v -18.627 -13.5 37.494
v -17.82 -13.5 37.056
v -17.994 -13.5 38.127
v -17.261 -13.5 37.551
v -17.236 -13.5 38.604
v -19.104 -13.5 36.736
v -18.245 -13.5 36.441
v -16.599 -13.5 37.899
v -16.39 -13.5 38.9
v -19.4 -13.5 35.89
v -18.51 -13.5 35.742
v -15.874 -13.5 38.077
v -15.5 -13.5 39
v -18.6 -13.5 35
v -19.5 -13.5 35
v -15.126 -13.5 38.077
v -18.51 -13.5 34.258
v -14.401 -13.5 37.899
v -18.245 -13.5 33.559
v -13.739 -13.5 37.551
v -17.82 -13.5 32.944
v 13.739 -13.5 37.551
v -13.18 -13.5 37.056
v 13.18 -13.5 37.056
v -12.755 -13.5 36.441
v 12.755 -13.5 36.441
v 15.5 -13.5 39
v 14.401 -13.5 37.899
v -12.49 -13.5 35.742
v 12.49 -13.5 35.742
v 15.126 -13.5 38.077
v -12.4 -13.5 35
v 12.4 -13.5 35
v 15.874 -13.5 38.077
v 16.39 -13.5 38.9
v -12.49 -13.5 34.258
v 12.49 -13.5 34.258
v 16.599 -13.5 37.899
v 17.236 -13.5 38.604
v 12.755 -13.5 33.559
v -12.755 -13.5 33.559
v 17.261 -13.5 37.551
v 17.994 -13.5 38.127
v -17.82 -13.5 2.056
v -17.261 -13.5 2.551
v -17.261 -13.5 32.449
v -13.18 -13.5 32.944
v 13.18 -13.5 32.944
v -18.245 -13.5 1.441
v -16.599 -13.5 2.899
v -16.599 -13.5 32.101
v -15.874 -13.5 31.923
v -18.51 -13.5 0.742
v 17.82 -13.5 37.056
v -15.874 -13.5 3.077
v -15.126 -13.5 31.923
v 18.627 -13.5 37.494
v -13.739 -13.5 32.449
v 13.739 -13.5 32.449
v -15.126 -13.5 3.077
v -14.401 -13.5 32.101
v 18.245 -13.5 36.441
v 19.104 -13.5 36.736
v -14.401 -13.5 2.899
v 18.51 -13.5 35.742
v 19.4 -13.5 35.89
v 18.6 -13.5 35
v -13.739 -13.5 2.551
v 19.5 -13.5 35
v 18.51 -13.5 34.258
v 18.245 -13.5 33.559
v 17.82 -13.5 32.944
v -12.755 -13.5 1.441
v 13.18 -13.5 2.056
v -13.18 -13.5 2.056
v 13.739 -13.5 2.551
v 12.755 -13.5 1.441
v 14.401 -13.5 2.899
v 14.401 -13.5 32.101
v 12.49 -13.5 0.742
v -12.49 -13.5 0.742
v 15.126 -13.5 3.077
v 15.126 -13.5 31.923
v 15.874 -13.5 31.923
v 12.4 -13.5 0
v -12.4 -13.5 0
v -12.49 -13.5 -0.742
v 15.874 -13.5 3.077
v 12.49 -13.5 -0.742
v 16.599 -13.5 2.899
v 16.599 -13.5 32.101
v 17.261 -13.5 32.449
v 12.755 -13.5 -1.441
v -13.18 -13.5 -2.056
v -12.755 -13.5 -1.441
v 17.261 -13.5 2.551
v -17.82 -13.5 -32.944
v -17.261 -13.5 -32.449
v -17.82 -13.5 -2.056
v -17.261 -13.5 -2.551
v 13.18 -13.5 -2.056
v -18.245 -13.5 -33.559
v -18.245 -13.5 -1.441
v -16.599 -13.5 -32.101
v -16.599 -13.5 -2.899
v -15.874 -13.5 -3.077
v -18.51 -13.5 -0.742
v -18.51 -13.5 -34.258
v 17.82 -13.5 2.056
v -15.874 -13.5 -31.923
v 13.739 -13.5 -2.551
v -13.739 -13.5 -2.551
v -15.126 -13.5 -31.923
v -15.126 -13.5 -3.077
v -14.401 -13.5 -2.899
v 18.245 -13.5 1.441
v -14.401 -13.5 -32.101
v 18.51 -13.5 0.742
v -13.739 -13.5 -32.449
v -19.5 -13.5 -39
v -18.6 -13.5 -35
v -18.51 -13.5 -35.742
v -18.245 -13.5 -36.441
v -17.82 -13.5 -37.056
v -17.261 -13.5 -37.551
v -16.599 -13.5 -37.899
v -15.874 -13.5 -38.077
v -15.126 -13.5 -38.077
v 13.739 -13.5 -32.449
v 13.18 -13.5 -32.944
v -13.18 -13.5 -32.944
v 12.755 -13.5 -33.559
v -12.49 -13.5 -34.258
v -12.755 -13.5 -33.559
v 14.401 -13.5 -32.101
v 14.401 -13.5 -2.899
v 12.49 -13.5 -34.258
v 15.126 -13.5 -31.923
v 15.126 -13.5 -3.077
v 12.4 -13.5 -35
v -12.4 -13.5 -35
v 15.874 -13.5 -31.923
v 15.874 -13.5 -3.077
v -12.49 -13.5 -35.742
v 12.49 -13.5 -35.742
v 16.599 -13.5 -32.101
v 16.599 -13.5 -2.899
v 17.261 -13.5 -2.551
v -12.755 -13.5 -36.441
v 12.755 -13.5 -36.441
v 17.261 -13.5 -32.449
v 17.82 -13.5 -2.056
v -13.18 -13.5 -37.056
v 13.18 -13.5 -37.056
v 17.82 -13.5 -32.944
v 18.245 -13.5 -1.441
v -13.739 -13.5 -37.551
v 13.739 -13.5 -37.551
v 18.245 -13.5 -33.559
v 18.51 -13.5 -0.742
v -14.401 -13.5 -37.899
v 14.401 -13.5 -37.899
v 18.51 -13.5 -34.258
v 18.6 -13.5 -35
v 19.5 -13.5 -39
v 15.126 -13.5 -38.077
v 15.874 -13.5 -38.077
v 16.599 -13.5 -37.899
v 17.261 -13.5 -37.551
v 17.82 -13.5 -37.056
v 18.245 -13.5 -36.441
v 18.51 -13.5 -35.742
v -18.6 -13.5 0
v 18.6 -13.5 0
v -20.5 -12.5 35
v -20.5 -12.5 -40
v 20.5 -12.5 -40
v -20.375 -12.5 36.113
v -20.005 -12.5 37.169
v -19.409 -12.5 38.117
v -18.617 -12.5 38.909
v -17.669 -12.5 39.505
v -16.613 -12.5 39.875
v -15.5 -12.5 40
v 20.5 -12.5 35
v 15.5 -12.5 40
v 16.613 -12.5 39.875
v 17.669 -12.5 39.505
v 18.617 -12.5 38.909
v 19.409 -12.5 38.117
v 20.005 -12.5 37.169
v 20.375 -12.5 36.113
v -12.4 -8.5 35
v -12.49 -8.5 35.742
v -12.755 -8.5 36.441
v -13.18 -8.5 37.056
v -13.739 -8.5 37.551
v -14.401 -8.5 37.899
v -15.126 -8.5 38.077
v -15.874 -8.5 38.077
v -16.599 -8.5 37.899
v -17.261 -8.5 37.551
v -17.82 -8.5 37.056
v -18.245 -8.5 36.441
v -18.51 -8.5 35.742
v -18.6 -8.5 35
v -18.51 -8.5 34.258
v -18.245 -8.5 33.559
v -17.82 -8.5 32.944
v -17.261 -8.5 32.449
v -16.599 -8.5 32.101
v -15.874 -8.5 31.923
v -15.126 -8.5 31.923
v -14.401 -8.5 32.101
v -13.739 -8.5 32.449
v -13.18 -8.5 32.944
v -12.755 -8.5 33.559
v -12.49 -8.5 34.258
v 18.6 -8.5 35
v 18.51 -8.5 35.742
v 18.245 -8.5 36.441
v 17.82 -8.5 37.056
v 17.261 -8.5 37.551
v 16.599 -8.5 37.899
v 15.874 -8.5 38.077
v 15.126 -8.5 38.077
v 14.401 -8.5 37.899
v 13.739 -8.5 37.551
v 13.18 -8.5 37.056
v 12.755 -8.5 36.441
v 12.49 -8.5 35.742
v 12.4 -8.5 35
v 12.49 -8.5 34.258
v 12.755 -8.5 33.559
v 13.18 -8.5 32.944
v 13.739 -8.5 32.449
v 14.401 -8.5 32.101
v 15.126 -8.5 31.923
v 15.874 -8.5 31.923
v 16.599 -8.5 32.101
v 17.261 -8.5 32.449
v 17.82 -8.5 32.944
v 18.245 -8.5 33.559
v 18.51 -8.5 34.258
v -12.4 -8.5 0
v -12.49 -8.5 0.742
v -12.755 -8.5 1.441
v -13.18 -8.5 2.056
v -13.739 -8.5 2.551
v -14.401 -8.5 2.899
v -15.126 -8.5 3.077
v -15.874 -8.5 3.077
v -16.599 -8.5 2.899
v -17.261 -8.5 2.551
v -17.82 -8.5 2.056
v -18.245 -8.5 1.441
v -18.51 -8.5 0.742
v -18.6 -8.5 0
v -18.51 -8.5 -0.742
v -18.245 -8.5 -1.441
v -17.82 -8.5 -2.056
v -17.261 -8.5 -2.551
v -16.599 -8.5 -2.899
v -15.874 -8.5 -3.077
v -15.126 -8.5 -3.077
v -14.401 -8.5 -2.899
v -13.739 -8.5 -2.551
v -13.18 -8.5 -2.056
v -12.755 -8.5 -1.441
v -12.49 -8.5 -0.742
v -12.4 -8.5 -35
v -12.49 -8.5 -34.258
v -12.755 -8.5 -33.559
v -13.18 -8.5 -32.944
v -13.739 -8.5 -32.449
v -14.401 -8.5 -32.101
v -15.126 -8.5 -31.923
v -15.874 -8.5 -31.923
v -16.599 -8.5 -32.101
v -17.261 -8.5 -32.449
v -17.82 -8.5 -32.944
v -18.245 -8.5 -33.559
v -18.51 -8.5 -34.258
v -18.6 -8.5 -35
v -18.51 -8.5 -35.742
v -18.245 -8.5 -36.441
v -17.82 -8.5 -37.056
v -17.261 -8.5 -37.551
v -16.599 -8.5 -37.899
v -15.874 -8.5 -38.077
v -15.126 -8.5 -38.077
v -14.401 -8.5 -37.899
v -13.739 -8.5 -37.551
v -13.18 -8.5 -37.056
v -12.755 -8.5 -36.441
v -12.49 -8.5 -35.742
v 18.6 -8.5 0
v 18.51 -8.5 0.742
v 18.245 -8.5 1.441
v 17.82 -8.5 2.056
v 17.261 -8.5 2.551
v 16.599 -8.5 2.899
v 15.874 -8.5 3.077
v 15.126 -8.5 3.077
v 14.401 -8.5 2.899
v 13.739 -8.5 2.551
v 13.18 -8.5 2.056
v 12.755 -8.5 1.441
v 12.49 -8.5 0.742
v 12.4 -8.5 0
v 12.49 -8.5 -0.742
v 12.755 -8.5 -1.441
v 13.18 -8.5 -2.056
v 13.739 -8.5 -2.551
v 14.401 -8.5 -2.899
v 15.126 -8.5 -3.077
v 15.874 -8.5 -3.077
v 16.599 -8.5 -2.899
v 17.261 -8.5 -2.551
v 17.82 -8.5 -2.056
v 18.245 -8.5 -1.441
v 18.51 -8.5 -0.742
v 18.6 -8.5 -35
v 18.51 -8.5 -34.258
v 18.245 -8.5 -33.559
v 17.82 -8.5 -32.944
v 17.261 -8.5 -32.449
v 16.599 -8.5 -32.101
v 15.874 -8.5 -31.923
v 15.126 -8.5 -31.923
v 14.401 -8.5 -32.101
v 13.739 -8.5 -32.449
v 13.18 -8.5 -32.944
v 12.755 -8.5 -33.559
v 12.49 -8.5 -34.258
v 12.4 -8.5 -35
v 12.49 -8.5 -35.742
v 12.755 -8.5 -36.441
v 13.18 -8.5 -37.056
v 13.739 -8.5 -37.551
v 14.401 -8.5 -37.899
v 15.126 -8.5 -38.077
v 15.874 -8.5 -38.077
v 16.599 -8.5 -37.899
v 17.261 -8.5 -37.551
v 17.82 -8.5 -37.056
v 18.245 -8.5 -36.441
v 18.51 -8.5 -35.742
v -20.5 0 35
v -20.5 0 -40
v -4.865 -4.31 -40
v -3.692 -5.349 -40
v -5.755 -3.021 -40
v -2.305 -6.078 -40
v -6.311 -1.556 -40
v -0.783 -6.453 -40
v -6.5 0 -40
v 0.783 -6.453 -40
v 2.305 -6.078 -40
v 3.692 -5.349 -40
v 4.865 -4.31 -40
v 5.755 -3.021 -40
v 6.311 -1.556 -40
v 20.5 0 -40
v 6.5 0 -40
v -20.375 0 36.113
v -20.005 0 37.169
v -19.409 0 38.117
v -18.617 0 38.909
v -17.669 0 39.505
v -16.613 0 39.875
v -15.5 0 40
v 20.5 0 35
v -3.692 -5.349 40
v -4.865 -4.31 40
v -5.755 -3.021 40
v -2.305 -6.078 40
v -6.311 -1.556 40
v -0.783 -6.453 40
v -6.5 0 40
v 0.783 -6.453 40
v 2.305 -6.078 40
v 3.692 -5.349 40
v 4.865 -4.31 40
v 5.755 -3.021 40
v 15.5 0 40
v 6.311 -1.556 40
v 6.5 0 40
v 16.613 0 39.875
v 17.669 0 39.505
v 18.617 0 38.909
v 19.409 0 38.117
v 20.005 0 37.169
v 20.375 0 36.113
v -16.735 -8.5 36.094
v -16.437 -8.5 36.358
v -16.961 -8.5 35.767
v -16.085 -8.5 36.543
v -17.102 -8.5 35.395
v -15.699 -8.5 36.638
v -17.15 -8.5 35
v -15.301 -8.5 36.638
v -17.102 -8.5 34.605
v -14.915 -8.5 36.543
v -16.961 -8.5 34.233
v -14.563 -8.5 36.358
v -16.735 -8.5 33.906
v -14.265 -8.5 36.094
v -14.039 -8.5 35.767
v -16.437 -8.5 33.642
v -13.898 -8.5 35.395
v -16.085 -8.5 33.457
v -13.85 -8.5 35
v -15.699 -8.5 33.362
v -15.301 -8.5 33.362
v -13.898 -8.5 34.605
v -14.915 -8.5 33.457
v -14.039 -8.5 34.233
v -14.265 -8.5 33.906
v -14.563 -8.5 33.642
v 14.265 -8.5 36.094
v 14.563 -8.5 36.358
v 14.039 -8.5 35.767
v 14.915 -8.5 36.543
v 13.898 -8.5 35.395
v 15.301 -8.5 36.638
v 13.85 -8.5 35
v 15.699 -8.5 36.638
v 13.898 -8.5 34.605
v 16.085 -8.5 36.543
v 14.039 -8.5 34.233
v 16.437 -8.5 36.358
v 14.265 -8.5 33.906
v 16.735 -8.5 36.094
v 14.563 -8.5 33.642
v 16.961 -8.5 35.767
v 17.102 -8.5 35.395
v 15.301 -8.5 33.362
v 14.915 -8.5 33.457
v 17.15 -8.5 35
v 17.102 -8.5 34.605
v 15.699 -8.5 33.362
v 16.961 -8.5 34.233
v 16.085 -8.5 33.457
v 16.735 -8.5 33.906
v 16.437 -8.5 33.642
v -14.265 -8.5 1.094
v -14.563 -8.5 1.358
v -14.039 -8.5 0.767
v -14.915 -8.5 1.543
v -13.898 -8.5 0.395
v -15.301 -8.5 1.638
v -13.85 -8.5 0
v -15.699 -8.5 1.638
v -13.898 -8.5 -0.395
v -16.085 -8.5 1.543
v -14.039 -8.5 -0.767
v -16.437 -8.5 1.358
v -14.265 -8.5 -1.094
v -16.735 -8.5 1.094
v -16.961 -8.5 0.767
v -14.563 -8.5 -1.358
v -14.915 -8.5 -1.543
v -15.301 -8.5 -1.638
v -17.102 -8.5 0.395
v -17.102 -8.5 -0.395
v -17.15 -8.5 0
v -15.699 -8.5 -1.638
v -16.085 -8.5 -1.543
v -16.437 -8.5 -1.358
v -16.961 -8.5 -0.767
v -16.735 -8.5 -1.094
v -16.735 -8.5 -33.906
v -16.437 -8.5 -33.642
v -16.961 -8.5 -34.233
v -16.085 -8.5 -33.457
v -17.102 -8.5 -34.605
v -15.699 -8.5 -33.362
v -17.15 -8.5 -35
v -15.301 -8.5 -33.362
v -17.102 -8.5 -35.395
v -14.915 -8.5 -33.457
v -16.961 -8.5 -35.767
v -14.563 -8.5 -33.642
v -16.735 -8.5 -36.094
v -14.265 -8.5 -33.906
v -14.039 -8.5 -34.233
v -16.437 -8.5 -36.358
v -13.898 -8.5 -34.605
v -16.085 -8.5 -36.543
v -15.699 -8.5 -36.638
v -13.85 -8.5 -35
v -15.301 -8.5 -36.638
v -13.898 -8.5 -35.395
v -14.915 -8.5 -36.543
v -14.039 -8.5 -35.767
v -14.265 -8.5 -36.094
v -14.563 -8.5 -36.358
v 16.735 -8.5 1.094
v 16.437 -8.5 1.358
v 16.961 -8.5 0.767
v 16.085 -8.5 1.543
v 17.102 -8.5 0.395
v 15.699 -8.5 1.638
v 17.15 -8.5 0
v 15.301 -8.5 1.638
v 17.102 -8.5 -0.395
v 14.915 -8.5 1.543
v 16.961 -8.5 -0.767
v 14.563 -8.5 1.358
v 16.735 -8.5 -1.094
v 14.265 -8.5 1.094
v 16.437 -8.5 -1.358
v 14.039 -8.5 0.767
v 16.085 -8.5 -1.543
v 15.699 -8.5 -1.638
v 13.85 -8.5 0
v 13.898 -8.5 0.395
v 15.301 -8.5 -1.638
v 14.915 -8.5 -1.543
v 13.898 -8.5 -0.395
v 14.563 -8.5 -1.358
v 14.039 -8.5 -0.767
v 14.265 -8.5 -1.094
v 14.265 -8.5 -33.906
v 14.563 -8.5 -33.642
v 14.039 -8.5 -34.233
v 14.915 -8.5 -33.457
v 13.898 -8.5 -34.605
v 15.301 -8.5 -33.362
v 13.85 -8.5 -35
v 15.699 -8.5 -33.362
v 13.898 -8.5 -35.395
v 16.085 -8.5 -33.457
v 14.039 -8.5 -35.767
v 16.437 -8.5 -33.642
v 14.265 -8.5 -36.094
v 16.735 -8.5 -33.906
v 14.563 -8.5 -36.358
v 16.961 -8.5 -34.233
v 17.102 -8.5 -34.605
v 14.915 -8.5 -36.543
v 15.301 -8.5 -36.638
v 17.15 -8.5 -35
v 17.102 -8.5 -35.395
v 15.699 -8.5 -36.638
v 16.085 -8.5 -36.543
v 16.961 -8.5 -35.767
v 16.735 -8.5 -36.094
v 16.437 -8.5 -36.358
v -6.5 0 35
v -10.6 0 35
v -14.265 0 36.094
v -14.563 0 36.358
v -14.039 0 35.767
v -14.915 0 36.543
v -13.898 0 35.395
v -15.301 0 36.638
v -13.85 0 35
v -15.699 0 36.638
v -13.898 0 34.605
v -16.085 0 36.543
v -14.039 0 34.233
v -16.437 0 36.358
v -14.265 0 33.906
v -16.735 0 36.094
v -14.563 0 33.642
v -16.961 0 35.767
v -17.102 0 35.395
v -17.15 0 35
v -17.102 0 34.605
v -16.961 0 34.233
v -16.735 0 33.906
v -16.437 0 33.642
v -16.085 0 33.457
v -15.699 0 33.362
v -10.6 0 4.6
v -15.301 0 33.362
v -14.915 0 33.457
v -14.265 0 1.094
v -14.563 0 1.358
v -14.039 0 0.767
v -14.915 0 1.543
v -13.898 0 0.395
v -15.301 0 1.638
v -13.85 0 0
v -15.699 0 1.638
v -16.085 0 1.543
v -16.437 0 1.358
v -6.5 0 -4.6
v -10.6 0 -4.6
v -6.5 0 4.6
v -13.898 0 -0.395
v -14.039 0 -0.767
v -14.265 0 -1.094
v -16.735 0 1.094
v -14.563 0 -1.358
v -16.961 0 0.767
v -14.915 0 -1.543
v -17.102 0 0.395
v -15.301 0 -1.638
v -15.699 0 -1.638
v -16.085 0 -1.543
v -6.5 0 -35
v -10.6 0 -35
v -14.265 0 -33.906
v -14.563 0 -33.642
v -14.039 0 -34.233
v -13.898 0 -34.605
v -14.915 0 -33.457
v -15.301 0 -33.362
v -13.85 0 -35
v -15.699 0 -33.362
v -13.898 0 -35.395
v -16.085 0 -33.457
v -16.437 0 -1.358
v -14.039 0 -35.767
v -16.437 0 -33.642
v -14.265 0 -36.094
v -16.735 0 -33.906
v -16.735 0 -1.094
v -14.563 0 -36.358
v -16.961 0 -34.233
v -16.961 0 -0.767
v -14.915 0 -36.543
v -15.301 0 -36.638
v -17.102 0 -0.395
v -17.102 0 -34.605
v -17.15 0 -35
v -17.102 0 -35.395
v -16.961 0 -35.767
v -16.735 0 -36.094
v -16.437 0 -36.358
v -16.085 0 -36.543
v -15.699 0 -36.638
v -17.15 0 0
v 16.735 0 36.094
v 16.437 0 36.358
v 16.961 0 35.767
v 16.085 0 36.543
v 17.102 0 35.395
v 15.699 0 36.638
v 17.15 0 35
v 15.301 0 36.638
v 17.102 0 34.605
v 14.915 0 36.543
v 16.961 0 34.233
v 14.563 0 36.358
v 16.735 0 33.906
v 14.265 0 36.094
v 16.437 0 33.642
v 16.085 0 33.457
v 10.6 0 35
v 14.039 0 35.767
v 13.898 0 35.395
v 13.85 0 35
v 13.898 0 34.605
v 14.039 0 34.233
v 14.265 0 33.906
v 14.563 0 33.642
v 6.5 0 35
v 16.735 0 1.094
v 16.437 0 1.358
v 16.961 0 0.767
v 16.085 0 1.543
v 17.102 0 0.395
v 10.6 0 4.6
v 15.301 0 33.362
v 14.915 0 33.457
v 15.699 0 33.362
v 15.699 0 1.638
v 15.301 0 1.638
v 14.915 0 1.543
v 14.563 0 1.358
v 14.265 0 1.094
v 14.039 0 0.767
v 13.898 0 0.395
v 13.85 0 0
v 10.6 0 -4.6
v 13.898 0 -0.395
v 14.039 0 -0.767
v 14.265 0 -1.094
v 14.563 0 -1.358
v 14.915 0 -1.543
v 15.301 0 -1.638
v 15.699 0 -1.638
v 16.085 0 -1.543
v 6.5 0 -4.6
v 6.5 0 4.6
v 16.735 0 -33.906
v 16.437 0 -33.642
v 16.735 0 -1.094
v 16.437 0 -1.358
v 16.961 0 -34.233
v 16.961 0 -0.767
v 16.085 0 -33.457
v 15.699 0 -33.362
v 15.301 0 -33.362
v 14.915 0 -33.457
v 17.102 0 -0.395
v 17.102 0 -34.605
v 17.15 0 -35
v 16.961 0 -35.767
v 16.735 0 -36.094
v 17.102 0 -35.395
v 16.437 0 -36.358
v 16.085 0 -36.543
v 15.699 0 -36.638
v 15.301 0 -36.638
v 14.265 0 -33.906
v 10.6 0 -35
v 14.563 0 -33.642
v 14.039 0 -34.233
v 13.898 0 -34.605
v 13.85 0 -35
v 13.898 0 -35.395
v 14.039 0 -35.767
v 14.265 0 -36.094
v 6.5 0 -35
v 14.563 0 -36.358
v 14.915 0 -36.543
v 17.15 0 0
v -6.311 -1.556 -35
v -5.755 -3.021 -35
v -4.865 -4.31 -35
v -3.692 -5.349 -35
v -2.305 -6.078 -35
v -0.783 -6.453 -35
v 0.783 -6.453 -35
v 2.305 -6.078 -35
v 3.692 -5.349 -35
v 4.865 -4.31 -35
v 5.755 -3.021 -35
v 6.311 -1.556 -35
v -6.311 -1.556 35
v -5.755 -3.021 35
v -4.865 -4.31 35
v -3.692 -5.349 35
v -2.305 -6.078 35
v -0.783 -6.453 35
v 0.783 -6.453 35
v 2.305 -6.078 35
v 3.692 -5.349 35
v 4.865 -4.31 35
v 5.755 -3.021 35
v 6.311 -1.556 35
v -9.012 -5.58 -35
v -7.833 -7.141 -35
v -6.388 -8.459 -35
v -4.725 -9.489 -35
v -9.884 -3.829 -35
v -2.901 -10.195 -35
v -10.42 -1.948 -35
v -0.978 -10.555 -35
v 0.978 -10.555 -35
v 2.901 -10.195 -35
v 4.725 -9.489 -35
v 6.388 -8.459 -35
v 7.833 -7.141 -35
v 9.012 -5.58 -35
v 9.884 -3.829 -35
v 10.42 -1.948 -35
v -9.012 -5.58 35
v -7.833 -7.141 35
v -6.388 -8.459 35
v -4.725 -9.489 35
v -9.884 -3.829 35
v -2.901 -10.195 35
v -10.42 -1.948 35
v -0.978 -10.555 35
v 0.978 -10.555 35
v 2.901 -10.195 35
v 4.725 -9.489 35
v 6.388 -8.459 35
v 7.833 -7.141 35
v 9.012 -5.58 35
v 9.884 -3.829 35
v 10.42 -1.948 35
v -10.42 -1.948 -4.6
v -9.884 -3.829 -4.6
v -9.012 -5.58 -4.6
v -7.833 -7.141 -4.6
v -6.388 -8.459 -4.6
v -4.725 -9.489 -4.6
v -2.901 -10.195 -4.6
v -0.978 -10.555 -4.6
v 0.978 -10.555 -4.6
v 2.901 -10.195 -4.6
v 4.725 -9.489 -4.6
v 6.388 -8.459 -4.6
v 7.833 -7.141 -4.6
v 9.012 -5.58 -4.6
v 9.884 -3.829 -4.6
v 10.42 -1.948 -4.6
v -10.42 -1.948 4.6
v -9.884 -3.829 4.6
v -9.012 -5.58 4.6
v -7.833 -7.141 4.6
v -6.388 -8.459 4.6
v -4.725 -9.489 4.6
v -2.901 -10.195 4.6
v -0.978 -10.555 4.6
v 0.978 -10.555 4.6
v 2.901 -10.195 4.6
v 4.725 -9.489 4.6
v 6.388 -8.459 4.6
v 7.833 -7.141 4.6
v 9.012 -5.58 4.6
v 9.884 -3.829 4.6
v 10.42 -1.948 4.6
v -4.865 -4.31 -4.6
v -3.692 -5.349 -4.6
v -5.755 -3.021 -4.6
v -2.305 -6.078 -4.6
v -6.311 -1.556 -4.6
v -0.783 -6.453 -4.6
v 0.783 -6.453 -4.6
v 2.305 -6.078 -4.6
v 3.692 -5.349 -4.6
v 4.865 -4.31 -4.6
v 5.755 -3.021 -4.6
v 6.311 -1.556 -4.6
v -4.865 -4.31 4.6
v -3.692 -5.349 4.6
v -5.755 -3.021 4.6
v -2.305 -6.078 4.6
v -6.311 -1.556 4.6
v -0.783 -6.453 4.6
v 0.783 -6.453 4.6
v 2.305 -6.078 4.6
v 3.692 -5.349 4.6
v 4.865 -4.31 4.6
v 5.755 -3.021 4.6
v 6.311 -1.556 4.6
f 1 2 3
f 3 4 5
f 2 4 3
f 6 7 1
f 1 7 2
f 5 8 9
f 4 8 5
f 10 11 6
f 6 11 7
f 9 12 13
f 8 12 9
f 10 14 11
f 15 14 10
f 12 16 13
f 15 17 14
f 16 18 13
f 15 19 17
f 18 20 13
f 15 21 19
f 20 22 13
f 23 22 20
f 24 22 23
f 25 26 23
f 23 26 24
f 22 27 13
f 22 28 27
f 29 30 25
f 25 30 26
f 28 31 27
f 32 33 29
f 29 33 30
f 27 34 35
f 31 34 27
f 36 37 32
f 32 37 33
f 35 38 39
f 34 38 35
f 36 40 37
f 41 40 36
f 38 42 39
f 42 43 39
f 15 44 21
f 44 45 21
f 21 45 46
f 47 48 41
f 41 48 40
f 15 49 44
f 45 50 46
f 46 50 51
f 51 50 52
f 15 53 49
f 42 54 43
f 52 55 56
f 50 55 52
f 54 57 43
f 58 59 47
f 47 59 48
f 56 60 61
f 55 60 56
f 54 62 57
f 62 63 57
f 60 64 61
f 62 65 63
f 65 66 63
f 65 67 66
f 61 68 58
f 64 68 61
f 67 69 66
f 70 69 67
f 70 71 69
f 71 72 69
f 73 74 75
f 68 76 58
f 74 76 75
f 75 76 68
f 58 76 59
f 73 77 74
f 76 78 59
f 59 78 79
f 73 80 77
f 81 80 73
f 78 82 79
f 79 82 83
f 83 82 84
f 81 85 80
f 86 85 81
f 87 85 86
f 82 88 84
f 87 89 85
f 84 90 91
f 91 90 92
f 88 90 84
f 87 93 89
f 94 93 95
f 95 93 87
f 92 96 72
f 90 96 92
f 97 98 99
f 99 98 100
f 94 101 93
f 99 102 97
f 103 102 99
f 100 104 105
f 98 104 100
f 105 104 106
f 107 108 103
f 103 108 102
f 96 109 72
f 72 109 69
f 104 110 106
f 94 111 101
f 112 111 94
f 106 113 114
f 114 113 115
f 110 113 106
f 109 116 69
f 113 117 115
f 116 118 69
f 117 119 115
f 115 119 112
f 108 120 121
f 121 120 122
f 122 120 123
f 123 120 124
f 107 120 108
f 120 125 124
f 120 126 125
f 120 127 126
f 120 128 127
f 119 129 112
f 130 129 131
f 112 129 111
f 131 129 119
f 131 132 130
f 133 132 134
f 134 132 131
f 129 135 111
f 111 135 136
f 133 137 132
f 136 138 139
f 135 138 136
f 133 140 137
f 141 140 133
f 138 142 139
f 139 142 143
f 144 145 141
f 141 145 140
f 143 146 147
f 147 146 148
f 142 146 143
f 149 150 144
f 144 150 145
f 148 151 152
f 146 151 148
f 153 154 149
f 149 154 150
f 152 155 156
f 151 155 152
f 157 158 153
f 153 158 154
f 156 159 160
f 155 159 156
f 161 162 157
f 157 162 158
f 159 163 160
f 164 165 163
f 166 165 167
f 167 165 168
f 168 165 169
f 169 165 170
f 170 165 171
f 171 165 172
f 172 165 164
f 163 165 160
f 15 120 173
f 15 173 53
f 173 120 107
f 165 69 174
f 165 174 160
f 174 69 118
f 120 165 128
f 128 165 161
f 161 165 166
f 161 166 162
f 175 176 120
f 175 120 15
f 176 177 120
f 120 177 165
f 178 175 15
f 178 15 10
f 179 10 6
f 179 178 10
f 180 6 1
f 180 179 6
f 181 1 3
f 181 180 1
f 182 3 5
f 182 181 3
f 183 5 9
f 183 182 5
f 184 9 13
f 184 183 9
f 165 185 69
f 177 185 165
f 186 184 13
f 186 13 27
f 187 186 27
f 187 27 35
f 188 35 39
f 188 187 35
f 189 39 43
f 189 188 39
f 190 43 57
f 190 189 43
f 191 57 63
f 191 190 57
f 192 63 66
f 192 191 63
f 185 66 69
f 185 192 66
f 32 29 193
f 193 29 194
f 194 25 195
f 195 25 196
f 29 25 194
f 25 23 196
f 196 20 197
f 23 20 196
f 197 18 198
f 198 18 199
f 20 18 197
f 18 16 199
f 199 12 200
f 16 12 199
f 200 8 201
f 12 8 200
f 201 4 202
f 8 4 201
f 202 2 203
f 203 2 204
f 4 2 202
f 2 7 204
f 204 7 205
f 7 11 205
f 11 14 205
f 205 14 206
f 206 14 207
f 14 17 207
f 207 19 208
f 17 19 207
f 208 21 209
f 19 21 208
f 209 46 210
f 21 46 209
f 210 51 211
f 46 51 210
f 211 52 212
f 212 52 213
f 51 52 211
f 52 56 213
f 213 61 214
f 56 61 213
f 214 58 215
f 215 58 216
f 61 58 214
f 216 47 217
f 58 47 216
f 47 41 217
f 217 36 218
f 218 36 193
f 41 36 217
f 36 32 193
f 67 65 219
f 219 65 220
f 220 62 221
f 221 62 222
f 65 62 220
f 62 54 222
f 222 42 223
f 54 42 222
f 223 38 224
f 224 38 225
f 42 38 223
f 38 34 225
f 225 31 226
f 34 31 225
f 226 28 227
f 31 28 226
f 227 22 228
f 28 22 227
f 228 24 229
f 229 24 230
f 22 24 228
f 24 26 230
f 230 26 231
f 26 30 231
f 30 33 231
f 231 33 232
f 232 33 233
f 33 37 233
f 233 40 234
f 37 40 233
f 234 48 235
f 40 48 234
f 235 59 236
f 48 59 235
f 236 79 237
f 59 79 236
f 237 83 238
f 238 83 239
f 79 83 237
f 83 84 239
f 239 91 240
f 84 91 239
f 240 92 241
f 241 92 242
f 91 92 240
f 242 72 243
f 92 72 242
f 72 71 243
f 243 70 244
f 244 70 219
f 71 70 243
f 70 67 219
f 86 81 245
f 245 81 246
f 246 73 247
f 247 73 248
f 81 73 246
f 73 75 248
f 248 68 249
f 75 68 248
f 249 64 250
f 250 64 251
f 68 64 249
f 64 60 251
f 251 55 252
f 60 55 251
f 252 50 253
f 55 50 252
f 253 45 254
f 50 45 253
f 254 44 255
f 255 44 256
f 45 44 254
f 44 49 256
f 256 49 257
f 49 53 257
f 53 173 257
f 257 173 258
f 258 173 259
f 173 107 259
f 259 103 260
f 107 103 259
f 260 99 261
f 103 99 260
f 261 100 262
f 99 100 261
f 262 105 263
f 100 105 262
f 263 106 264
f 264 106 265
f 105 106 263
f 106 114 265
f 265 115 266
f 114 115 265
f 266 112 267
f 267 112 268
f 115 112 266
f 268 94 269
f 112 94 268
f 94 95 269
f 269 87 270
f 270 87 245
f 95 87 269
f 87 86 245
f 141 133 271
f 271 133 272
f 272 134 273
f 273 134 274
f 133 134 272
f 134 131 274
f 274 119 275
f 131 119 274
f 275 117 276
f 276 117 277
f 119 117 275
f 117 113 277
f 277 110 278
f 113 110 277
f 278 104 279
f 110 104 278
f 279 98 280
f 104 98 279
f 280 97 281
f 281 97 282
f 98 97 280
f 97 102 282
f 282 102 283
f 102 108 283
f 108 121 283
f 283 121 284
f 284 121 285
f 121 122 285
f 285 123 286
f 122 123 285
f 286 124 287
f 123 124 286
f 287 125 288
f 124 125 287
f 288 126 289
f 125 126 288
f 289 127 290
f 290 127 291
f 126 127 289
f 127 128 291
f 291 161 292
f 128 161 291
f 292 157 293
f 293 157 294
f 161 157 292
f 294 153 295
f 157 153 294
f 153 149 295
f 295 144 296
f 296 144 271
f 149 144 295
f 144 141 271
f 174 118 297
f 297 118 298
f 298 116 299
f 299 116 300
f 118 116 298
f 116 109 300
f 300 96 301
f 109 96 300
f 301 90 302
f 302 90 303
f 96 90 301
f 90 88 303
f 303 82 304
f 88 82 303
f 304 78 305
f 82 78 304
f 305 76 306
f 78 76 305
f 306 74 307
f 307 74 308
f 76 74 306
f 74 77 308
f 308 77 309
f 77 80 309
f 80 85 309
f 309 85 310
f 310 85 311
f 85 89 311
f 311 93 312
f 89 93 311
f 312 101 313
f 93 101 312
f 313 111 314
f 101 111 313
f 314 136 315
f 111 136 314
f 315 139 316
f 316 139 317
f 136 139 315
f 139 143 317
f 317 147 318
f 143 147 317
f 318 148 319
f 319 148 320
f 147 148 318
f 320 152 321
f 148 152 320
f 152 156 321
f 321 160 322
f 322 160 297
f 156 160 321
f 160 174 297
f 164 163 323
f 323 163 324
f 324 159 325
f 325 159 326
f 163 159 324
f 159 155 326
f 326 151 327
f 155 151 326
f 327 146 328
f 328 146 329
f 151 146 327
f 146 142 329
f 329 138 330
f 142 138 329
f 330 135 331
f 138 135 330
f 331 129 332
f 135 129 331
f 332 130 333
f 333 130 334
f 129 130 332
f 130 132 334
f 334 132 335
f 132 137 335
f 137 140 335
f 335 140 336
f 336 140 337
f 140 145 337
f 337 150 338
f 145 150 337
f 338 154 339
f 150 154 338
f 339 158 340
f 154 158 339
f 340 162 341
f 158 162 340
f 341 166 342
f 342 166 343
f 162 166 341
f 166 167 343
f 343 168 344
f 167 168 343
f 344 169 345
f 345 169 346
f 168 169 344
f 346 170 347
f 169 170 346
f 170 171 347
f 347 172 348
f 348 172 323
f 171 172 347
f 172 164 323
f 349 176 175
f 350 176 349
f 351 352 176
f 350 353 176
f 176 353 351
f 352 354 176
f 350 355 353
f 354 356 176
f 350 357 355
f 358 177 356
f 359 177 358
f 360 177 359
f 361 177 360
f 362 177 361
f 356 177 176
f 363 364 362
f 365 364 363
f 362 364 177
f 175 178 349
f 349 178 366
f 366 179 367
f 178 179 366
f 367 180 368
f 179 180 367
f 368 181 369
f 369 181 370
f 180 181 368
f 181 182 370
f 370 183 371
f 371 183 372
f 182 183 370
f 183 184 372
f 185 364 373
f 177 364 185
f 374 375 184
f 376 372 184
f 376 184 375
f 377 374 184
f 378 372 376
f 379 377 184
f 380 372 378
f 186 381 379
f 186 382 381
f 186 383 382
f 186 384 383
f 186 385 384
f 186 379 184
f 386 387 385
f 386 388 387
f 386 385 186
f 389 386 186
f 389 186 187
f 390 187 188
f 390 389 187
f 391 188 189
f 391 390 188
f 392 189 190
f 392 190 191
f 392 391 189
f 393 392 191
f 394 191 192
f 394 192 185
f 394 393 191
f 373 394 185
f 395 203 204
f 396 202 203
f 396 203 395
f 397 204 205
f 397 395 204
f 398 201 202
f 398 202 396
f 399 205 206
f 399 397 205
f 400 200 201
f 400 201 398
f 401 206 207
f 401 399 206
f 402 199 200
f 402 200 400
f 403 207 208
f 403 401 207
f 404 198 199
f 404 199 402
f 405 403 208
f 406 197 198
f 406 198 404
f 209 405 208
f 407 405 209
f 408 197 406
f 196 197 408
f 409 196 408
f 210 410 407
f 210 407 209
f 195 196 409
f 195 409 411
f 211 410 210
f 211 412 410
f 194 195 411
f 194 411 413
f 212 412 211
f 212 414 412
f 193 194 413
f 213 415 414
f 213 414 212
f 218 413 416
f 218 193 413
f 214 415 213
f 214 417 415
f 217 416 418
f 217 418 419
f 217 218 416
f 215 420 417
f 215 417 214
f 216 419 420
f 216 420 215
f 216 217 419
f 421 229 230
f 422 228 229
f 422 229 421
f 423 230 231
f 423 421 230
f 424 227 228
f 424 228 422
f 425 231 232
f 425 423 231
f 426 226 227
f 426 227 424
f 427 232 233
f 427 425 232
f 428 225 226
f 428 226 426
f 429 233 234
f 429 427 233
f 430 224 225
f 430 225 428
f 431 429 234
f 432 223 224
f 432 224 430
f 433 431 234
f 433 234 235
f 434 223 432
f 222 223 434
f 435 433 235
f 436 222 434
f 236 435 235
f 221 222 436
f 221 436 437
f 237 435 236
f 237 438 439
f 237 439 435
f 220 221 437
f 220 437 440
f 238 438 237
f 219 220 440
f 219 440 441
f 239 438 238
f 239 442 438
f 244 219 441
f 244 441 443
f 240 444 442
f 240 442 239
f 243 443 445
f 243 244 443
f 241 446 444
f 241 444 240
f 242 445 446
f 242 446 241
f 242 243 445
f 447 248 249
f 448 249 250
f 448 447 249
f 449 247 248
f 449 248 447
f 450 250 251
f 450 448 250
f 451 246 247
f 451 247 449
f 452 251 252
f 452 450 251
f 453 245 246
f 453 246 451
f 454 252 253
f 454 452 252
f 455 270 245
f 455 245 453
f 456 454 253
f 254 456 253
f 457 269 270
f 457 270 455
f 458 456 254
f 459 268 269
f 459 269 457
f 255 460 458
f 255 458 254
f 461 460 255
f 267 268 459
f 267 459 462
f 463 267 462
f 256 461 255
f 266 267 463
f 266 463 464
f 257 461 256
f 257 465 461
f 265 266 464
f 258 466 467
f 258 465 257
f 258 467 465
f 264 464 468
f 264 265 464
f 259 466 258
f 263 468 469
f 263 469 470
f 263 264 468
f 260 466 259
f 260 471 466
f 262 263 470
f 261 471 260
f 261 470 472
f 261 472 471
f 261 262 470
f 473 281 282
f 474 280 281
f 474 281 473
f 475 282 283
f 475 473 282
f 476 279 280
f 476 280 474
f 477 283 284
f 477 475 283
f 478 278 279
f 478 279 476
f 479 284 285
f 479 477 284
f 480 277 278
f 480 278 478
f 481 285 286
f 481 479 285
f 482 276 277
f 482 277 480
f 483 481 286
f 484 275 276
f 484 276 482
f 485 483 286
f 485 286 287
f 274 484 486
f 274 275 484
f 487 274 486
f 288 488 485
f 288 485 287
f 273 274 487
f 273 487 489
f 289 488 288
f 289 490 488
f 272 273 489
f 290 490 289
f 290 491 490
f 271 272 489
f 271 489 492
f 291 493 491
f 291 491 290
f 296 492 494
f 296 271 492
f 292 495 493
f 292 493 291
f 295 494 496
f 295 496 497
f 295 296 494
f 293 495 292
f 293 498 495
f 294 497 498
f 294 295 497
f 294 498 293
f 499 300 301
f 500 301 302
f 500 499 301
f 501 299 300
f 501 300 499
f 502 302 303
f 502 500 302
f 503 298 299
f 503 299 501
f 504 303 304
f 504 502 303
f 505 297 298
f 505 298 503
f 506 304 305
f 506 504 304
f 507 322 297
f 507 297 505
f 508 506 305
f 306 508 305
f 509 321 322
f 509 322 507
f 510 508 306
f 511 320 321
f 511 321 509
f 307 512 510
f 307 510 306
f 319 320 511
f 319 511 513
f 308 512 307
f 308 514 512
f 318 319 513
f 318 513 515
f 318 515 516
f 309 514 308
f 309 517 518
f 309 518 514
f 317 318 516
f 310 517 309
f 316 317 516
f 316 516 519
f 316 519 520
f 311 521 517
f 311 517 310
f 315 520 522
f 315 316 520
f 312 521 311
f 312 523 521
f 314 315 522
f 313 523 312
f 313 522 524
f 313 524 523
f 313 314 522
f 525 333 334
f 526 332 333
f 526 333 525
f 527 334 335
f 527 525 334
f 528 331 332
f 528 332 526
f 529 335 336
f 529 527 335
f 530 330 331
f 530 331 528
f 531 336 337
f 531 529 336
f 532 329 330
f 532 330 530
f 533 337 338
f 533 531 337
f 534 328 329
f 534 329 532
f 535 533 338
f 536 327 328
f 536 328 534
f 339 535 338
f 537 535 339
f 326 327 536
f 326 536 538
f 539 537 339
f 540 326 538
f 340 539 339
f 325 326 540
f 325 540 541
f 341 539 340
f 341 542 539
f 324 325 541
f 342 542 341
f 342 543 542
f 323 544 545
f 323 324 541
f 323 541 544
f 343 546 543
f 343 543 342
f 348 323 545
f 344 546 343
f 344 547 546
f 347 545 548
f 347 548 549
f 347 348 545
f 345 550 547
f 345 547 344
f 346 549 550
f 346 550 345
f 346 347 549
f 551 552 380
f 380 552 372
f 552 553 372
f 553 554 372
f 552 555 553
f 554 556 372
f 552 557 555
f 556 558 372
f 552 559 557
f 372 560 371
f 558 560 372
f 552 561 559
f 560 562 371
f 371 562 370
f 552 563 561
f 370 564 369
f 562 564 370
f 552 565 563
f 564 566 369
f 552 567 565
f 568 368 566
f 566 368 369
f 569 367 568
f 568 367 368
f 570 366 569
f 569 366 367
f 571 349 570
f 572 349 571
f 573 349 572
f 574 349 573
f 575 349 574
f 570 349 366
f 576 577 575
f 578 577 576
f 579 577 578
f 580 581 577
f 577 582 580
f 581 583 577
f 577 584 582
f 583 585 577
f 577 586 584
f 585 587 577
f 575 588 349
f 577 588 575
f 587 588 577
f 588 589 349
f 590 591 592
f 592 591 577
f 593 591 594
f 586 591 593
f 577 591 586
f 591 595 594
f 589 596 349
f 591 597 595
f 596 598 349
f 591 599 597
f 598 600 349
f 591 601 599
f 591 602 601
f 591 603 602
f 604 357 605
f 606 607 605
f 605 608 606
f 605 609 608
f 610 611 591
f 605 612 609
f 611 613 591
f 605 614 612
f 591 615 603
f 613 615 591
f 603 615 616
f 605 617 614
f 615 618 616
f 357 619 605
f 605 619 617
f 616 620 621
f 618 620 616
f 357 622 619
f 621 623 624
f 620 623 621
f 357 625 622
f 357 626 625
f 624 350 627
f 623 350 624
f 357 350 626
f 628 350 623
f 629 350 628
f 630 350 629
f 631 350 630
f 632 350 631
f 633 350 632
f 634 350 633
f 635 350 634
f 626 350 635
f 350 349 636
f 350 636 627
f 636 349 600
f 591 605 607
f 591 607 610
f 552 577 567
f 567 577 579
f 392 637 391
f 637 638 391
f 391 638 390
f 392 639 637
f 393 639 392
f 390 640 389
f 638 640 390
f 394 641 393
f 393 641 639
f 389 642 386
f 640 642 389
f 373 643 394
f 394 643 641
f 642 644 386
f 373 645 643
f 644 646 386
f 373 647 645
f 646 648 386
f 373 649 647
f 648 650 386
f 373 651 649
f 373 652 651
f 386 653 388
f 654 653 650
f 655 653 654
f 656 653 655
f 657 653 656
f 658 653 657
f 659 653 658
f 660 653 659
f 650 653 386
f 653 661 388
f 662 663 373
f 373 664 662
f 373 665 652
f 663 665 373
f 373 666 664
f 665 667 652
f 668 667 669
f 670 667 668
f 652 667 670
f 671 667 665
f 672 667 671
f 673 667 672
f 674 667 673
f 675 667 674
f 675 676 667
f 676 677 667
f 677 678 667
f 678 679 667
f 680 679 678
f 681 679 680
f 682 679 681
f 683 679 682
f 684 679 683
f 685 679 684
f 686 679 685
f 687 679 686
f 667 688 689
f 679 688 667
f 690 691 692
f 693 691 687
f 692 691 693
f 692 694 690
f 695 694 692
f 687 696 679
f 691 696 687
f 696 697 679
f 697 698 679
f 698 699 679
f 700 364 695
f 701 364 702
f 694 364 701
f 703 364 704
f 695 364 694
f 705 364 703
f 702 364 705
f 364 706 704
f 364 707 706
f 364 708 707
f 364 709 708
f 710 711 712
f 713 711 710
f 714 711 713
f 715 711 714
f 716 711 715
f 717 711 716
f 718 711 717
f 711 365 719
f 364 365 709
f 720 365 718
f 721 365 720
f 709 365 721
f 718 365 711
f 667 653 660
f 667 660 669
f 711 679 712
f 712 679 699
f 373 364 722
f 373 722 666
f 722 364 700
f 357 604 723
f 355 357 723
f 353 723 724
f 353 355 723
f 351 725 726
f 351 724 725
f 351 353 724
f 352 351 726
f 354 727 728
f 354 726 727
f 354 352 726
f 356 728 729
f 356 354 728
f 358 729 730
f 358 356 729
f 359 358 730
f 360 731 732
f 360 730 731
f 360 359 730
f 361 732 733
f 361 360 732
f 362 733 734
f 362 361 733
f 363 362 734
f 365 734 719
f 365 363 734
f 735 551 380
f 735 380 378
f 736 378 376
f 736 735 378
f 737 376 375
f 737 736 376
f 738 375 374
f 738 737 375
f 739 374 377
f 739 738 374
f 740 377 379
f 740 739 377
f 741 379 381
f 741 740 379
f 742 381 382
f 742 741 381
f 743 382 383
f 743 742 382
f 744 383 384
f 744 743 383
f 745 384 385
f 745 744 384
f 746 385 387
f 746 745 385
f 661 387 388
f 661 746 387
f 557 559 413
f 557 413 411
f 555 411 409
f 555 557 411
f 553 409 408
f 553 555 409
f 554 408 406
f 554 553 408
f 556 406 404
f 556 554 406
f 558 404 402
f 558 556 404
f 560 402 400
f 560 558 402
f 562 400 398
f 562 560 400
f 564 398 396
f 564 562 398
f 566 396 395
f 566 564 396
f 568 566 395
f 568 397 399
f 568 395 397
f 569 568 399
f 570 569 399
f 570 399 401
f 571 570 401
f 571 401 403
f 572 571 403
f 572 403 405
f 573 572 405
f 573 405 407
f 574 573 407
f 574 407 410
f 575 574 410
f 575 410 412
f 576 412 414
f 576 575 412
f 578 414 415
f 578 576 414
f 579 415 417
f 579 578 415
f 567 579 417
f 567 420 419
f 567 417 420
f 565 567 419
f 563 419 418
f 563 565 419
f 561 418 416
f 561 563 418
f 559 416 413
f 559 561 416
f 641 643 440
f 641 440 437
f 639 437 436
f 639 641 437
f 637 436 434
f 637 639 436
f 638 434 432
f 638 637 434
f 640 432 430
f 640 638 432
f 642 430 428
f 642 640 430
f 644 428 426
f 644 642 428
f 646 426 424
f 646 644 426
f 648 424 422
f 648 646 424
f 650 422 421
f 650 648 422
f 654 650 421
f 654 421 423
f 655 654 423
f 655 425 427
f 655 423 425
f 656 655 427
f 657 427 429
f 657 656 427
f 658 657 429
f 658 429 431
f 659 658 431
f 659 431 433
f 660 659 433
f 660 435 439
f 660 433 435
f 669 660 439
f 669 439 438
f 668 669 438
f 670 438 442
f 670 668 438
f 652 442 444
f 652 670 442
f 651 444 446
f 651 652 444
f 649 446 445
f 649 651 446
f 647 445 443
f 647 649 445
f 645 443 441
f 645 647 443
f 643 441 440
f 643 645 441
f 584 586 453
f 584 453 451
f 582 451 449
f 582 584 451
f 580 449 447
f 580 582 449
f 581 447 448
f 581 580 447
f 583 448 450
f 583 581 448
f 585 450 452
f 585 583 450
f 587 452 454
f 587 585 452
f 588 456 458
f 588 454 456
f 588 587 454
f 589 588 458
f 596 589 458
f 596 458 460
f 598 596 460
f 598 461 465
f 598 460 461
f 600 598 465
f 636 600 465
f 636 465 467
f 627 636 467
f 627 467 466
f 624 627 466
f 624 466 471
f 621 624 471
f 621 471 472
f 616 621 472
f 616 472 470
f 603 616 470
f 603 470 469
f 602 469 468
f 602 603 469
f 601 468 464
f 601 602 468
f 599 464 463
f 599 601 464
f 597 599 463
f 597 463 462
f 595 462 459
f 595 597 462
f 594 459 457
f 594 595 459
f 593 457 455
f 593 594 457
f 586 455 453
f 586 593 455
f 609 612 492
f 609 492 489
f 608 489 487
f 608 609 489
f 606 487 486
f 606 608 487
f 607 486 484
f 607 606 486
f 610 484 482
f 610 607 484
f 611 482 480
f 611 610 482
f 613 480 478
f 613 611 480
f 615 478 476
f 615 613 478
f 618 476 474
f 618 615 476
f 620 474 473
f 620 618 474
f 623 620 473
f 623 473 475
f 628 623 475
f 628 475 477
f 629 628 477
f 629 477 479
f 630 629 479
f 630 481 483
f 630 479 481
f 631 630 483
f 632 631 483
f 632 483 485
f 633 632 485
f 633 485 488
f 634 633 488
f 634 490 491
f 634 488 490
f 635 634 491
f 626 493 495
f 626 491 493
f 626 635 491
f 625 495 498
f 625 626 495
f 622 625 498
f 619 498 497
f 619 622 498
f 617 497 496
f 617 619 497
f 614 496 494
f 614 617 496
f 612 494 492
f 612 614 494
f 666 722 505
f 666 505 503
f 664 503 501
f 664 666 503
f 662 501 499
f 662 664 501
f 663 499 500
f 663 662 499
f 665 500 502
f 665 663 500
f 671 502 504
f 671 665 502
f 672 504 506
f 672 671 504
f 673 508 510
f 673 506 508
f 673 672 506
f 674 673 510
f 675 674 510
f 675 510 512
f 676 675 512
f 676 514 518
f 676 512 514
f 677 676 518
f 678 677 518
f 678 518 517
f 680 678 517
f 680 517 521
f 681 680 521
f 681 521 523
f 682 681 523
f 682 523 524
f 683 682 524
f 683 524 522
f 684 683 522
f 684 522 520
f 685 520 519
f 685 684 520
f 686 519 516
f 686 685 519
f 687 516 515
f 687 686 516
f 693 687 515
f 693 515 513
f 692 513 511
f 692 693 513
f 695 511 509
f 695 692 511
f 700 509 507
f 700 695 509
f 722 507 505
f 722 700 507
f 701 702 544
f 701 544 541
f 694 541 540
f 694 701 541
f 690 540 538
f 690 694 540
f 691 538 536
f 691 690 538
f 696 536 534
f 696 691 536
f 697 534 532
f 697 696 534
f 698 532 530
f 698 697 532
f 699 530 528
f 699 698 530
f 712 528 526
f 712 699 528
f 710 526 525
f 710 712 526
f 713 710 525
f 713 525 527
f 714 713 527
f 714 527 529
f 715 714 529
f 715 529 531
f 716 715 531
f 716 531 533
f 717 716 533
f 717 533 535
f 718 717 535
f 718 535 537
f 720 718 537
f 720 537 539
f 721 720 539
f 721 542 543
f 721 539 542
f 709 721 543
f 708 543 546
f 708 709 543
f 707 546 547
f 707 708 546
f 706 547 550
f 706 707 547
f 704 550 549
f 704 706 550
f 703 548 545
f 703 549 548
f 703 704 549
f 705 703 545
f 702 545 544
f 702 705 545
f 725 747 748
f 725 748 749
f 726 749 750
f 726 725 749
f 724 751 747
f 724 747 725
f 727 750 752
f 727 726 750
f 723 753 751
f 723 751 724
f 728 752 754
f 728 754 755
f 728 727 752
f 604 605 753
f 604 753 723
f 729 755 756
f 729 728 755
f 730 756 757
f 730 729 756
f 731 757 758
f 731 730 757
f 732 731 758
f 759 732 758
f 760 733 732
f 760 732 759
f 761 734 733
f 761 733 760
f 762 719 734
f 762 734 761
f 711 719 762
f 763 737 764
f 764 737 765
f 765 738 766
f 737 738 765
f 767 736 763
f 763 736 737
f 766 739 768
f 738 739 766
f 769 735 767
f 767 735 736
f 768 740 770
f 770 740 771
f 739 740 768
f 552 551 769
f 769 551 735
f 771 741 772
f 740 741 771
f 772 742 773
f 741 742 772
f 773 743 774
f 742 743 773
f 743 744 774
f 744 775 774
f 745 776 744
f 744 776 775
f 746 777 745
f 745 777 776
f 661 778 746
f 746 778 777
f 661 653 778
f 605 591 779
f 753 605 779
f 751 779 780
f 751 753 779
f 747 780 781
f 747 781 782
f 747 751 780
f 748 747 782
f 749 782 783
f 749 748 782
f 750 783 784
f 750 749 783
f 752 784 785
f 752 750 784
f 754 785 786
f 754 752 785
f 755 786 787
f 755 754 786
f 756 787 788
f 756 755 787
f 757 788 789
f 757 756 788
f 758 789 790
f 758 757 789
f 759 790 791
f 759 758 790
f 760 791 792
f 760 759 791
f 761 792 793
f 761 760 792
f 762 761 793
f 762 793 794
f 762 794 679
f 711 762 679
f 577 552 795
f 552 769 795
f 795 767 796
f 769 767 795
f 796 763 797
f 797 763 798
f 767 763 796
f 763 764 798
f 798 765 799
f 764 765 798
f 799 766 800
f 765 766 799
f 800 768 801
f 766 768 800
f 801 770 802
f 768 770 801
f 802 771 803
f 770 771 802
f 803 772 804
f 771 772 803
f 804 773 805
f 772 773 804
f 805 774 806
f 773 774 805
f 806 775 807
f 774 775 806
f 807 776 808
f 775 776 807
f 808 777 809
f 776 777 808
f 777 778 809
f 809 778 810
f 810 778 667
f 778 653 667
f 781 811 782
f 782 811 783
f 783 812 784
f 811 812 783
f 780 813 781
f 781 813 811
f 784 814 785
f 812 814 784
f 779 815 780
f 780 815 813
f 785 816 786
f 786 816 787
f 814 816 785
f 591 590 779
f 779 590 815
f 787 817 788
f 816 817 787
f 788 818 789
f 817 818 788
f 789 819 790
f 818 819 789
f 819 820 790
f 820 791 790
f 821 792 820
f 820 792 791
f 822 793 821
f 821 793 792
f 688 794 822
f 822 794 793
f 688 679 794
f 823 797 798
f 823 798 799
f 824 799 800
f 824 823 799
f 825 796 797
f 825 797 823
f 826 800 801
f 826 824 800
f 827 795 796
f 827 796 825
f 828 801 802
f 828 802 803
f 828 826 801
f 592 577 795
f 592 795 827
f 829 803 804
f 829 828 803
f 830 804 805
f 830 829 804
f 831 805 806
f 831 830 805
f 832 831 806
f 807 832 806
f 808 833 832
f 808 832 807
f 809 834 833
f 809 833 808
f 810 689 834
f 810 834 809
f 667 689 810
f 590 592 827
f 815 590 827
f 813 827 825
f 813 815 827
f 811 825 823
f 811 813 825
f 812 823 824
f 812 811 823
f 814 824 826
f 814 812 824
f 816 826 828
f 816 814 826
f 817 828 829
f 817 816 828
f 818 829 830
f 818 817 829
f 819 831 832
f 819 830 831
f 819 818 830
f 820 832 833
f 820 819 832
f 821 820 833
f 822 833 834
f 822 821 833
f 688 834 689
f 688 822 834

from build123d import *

# Parameters (mm, degrees)
PAD_DEPTH       = 40
SKETCH001_R     = 1.65
POCKET_DEPTH    = 13.501
SKETCH002_R     = 10.6
POCKET001_DEPTH = 30.4
SKETCH003_R     = 10.6
POCKET002_DEPTH = 30.4
FILLET_R        = 5
CHAMFER_SIZE    = 1
SKETCH004_R     = 3.1
POCKET003_DEPTH = 5


with BuildPart() as part:
    # Sketch → Pad (new body, symmetric)
    with BuildSketch(Plane.XY):
        with BuildLine():
            Line((-20.5, -13.5), (20.5, -13.5))
            Line((20.5, -13.5), (20.5, 0))
            Line((20.5, 0), (6.5, 0))
            ThreePointArc((-6.5, 0), (0, -6.5), (6.5, 0))
            Line((-6.5, 0), (-20.5, 0))
            Line((-20.5, 0), (-20.5, -13.5))
        make_face()
    extrude(amount=PAD_DEPTH, both=True)

    # Sketch001 → Pocket (cut, through all)
    with BuildSketch(Plane.XZ):
        with Locations((-15.5, 35)):
            Circle(SKETCH001_R)
        with Locations((-15.5, 0)):
            Circle(SKETCH001_R)
        with Locations((-15.5, -35)):
            Circle(SKETCH001_R)
        with Locations((15.5, -35)):
            Circle(SKETCH001_R)
        with Locations((15.5, 0)):
            Circle(SKETCH001_R)
        with Locations((15.5, 35)):
            Circle(SKETCH001_R)
    extrude(amount=POCKET_DEPTH, mode=Mode.SUBTRACT)

    # Sketch002 (on DatumPlane) → Pocket001 (cut)
    with BuildSketch(Plane.XY.offset(35)):
        Circle(SKETCH002_R)
    extrude(amount=-POCKET001_DEPTH, mode=Mode.SUBTRACT)

    # Sketch003 (on DatumPlane) → Pocket002 (cut)
    with BuildSketch(Plane.XY.offset(-35)):
        Circle(SKETCH003_R)
    extrude(amount=POCKET002_DEPTH, mode=Mode.SUBTRACT)

    # Fillet
    fillet_edges = [part.edges().sort_by_distance(p)[0] for p in [
        (-20.5, -6.75, 40),
        (20.5, -6.75, 40),
    ]]
    fillet(fillet_edges, radius=FILLET_R)

    # Chamfer
    chamfer_edges = [part.edges().sort_by_distance(p)[0] for p in [
        (-20.5, -13.5, -2.5),
        (0, -13.5, -40),
    ]]
    chamfer(chamfer_edges, length=CHAMFER_SIZE)

    # Sketch004 (on Face1 of Chamfer) → Pocket003 (cut)
    with BuildSketch(Plane.XZ.offset(13.5)):
        with Locations((-15.5, 35)):
            Circle(SKETCH004_R)
        with Locations((-15.5, 0)):
            Circle(SKETCH004_R)
        with Locations((-15.5, -35)):
            Circle(SKETCH004_R)
        with Locations((15.5, 35)):
            Circle(SKETCH004_R)
        with Locations((15.5, 0)):
            Circle(SKETCH004_R)
        with Locations((15.5, -35)):
            Circle(SKETCH004_R)
    extrude(amount=-POCKET003_DEPTH, mode=Mode.SUBTRACT)


solid = part.part
